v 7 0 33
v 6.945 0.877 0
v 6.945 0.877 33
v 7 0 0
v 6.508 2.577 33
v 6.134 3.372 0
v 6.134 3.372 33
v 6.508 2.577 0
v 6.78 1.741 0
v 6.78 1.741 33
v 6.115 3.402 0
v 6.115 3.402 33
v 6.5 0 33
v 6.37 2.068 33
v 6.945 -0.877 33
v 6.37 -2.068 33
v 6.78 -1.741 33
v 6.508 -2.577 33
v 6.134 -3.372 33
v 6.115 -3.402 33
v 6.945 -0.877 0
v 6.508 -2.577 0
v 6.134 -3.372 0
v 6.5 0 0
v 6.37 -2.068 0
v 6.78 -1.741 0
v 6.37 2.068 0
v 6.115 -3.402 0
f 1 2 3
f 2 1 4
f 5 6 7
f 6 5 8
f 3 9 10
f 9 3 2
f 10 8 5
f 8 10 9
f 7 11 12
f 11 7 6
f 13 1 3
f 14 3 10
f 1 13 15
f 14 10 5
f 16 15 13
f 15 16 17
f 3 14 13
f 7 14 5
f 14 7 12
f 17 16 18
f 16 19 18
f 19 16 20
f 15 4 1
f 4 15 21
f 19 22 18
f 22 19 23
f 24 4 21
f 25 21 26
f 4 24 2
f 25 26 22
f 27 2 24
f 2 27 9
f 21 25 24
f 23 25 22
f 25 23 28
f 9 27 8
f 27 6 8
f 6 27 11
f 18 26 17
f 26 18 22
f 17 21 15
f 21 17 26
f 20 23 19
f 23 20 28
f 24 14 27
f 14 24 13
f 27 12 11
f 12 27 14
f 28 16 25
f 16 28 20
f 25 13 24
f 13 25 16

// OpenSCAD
$fn = 50;


difference() {
	union() {
		cylinder(h = 33, r = 7.0000000000);
		translate(v = [-13.0000000000, 0, 0]) {
			cylinder(h = 33, r = 7.0000000000);
		}
	}
	union() {
		cylinder(h = 33, r = 3.2500000000);
		cylinder(h = 33, r = 1.8000000000);
		cylinder(h = 33, r = 1.8000000000);
		cylinder(h = 33, r = 1.8000000000);
		translate(v = [-17.5000000000, 0, 0]) {
			hull() {
				translate(v = [-3.7500000000, 0.0000000000, 0]) {
					cylinder(h = 33, r = 7.5000000000);
				}
				translate(v = [3.7500000000, 0.0000000000, 0]) {
					cylinder(h = 33, r = 7.5000000000);
				}
				translate(v = [-3.7500000000, -0.0000000000, 0]) {
					cylinder(h = 33, r = 7.5000000000);
				}
				translate(v = [3.7500000000, -0.0000000000, 0]) {
					cylinder(h = 33, r = 7.5000000000);
				}
			}
		}
		translate(v = [-10.0000000000, 0, 0.0000000000]) {
			cylinder(h = 33, r = 16.5000000000);
		}
	}
}
